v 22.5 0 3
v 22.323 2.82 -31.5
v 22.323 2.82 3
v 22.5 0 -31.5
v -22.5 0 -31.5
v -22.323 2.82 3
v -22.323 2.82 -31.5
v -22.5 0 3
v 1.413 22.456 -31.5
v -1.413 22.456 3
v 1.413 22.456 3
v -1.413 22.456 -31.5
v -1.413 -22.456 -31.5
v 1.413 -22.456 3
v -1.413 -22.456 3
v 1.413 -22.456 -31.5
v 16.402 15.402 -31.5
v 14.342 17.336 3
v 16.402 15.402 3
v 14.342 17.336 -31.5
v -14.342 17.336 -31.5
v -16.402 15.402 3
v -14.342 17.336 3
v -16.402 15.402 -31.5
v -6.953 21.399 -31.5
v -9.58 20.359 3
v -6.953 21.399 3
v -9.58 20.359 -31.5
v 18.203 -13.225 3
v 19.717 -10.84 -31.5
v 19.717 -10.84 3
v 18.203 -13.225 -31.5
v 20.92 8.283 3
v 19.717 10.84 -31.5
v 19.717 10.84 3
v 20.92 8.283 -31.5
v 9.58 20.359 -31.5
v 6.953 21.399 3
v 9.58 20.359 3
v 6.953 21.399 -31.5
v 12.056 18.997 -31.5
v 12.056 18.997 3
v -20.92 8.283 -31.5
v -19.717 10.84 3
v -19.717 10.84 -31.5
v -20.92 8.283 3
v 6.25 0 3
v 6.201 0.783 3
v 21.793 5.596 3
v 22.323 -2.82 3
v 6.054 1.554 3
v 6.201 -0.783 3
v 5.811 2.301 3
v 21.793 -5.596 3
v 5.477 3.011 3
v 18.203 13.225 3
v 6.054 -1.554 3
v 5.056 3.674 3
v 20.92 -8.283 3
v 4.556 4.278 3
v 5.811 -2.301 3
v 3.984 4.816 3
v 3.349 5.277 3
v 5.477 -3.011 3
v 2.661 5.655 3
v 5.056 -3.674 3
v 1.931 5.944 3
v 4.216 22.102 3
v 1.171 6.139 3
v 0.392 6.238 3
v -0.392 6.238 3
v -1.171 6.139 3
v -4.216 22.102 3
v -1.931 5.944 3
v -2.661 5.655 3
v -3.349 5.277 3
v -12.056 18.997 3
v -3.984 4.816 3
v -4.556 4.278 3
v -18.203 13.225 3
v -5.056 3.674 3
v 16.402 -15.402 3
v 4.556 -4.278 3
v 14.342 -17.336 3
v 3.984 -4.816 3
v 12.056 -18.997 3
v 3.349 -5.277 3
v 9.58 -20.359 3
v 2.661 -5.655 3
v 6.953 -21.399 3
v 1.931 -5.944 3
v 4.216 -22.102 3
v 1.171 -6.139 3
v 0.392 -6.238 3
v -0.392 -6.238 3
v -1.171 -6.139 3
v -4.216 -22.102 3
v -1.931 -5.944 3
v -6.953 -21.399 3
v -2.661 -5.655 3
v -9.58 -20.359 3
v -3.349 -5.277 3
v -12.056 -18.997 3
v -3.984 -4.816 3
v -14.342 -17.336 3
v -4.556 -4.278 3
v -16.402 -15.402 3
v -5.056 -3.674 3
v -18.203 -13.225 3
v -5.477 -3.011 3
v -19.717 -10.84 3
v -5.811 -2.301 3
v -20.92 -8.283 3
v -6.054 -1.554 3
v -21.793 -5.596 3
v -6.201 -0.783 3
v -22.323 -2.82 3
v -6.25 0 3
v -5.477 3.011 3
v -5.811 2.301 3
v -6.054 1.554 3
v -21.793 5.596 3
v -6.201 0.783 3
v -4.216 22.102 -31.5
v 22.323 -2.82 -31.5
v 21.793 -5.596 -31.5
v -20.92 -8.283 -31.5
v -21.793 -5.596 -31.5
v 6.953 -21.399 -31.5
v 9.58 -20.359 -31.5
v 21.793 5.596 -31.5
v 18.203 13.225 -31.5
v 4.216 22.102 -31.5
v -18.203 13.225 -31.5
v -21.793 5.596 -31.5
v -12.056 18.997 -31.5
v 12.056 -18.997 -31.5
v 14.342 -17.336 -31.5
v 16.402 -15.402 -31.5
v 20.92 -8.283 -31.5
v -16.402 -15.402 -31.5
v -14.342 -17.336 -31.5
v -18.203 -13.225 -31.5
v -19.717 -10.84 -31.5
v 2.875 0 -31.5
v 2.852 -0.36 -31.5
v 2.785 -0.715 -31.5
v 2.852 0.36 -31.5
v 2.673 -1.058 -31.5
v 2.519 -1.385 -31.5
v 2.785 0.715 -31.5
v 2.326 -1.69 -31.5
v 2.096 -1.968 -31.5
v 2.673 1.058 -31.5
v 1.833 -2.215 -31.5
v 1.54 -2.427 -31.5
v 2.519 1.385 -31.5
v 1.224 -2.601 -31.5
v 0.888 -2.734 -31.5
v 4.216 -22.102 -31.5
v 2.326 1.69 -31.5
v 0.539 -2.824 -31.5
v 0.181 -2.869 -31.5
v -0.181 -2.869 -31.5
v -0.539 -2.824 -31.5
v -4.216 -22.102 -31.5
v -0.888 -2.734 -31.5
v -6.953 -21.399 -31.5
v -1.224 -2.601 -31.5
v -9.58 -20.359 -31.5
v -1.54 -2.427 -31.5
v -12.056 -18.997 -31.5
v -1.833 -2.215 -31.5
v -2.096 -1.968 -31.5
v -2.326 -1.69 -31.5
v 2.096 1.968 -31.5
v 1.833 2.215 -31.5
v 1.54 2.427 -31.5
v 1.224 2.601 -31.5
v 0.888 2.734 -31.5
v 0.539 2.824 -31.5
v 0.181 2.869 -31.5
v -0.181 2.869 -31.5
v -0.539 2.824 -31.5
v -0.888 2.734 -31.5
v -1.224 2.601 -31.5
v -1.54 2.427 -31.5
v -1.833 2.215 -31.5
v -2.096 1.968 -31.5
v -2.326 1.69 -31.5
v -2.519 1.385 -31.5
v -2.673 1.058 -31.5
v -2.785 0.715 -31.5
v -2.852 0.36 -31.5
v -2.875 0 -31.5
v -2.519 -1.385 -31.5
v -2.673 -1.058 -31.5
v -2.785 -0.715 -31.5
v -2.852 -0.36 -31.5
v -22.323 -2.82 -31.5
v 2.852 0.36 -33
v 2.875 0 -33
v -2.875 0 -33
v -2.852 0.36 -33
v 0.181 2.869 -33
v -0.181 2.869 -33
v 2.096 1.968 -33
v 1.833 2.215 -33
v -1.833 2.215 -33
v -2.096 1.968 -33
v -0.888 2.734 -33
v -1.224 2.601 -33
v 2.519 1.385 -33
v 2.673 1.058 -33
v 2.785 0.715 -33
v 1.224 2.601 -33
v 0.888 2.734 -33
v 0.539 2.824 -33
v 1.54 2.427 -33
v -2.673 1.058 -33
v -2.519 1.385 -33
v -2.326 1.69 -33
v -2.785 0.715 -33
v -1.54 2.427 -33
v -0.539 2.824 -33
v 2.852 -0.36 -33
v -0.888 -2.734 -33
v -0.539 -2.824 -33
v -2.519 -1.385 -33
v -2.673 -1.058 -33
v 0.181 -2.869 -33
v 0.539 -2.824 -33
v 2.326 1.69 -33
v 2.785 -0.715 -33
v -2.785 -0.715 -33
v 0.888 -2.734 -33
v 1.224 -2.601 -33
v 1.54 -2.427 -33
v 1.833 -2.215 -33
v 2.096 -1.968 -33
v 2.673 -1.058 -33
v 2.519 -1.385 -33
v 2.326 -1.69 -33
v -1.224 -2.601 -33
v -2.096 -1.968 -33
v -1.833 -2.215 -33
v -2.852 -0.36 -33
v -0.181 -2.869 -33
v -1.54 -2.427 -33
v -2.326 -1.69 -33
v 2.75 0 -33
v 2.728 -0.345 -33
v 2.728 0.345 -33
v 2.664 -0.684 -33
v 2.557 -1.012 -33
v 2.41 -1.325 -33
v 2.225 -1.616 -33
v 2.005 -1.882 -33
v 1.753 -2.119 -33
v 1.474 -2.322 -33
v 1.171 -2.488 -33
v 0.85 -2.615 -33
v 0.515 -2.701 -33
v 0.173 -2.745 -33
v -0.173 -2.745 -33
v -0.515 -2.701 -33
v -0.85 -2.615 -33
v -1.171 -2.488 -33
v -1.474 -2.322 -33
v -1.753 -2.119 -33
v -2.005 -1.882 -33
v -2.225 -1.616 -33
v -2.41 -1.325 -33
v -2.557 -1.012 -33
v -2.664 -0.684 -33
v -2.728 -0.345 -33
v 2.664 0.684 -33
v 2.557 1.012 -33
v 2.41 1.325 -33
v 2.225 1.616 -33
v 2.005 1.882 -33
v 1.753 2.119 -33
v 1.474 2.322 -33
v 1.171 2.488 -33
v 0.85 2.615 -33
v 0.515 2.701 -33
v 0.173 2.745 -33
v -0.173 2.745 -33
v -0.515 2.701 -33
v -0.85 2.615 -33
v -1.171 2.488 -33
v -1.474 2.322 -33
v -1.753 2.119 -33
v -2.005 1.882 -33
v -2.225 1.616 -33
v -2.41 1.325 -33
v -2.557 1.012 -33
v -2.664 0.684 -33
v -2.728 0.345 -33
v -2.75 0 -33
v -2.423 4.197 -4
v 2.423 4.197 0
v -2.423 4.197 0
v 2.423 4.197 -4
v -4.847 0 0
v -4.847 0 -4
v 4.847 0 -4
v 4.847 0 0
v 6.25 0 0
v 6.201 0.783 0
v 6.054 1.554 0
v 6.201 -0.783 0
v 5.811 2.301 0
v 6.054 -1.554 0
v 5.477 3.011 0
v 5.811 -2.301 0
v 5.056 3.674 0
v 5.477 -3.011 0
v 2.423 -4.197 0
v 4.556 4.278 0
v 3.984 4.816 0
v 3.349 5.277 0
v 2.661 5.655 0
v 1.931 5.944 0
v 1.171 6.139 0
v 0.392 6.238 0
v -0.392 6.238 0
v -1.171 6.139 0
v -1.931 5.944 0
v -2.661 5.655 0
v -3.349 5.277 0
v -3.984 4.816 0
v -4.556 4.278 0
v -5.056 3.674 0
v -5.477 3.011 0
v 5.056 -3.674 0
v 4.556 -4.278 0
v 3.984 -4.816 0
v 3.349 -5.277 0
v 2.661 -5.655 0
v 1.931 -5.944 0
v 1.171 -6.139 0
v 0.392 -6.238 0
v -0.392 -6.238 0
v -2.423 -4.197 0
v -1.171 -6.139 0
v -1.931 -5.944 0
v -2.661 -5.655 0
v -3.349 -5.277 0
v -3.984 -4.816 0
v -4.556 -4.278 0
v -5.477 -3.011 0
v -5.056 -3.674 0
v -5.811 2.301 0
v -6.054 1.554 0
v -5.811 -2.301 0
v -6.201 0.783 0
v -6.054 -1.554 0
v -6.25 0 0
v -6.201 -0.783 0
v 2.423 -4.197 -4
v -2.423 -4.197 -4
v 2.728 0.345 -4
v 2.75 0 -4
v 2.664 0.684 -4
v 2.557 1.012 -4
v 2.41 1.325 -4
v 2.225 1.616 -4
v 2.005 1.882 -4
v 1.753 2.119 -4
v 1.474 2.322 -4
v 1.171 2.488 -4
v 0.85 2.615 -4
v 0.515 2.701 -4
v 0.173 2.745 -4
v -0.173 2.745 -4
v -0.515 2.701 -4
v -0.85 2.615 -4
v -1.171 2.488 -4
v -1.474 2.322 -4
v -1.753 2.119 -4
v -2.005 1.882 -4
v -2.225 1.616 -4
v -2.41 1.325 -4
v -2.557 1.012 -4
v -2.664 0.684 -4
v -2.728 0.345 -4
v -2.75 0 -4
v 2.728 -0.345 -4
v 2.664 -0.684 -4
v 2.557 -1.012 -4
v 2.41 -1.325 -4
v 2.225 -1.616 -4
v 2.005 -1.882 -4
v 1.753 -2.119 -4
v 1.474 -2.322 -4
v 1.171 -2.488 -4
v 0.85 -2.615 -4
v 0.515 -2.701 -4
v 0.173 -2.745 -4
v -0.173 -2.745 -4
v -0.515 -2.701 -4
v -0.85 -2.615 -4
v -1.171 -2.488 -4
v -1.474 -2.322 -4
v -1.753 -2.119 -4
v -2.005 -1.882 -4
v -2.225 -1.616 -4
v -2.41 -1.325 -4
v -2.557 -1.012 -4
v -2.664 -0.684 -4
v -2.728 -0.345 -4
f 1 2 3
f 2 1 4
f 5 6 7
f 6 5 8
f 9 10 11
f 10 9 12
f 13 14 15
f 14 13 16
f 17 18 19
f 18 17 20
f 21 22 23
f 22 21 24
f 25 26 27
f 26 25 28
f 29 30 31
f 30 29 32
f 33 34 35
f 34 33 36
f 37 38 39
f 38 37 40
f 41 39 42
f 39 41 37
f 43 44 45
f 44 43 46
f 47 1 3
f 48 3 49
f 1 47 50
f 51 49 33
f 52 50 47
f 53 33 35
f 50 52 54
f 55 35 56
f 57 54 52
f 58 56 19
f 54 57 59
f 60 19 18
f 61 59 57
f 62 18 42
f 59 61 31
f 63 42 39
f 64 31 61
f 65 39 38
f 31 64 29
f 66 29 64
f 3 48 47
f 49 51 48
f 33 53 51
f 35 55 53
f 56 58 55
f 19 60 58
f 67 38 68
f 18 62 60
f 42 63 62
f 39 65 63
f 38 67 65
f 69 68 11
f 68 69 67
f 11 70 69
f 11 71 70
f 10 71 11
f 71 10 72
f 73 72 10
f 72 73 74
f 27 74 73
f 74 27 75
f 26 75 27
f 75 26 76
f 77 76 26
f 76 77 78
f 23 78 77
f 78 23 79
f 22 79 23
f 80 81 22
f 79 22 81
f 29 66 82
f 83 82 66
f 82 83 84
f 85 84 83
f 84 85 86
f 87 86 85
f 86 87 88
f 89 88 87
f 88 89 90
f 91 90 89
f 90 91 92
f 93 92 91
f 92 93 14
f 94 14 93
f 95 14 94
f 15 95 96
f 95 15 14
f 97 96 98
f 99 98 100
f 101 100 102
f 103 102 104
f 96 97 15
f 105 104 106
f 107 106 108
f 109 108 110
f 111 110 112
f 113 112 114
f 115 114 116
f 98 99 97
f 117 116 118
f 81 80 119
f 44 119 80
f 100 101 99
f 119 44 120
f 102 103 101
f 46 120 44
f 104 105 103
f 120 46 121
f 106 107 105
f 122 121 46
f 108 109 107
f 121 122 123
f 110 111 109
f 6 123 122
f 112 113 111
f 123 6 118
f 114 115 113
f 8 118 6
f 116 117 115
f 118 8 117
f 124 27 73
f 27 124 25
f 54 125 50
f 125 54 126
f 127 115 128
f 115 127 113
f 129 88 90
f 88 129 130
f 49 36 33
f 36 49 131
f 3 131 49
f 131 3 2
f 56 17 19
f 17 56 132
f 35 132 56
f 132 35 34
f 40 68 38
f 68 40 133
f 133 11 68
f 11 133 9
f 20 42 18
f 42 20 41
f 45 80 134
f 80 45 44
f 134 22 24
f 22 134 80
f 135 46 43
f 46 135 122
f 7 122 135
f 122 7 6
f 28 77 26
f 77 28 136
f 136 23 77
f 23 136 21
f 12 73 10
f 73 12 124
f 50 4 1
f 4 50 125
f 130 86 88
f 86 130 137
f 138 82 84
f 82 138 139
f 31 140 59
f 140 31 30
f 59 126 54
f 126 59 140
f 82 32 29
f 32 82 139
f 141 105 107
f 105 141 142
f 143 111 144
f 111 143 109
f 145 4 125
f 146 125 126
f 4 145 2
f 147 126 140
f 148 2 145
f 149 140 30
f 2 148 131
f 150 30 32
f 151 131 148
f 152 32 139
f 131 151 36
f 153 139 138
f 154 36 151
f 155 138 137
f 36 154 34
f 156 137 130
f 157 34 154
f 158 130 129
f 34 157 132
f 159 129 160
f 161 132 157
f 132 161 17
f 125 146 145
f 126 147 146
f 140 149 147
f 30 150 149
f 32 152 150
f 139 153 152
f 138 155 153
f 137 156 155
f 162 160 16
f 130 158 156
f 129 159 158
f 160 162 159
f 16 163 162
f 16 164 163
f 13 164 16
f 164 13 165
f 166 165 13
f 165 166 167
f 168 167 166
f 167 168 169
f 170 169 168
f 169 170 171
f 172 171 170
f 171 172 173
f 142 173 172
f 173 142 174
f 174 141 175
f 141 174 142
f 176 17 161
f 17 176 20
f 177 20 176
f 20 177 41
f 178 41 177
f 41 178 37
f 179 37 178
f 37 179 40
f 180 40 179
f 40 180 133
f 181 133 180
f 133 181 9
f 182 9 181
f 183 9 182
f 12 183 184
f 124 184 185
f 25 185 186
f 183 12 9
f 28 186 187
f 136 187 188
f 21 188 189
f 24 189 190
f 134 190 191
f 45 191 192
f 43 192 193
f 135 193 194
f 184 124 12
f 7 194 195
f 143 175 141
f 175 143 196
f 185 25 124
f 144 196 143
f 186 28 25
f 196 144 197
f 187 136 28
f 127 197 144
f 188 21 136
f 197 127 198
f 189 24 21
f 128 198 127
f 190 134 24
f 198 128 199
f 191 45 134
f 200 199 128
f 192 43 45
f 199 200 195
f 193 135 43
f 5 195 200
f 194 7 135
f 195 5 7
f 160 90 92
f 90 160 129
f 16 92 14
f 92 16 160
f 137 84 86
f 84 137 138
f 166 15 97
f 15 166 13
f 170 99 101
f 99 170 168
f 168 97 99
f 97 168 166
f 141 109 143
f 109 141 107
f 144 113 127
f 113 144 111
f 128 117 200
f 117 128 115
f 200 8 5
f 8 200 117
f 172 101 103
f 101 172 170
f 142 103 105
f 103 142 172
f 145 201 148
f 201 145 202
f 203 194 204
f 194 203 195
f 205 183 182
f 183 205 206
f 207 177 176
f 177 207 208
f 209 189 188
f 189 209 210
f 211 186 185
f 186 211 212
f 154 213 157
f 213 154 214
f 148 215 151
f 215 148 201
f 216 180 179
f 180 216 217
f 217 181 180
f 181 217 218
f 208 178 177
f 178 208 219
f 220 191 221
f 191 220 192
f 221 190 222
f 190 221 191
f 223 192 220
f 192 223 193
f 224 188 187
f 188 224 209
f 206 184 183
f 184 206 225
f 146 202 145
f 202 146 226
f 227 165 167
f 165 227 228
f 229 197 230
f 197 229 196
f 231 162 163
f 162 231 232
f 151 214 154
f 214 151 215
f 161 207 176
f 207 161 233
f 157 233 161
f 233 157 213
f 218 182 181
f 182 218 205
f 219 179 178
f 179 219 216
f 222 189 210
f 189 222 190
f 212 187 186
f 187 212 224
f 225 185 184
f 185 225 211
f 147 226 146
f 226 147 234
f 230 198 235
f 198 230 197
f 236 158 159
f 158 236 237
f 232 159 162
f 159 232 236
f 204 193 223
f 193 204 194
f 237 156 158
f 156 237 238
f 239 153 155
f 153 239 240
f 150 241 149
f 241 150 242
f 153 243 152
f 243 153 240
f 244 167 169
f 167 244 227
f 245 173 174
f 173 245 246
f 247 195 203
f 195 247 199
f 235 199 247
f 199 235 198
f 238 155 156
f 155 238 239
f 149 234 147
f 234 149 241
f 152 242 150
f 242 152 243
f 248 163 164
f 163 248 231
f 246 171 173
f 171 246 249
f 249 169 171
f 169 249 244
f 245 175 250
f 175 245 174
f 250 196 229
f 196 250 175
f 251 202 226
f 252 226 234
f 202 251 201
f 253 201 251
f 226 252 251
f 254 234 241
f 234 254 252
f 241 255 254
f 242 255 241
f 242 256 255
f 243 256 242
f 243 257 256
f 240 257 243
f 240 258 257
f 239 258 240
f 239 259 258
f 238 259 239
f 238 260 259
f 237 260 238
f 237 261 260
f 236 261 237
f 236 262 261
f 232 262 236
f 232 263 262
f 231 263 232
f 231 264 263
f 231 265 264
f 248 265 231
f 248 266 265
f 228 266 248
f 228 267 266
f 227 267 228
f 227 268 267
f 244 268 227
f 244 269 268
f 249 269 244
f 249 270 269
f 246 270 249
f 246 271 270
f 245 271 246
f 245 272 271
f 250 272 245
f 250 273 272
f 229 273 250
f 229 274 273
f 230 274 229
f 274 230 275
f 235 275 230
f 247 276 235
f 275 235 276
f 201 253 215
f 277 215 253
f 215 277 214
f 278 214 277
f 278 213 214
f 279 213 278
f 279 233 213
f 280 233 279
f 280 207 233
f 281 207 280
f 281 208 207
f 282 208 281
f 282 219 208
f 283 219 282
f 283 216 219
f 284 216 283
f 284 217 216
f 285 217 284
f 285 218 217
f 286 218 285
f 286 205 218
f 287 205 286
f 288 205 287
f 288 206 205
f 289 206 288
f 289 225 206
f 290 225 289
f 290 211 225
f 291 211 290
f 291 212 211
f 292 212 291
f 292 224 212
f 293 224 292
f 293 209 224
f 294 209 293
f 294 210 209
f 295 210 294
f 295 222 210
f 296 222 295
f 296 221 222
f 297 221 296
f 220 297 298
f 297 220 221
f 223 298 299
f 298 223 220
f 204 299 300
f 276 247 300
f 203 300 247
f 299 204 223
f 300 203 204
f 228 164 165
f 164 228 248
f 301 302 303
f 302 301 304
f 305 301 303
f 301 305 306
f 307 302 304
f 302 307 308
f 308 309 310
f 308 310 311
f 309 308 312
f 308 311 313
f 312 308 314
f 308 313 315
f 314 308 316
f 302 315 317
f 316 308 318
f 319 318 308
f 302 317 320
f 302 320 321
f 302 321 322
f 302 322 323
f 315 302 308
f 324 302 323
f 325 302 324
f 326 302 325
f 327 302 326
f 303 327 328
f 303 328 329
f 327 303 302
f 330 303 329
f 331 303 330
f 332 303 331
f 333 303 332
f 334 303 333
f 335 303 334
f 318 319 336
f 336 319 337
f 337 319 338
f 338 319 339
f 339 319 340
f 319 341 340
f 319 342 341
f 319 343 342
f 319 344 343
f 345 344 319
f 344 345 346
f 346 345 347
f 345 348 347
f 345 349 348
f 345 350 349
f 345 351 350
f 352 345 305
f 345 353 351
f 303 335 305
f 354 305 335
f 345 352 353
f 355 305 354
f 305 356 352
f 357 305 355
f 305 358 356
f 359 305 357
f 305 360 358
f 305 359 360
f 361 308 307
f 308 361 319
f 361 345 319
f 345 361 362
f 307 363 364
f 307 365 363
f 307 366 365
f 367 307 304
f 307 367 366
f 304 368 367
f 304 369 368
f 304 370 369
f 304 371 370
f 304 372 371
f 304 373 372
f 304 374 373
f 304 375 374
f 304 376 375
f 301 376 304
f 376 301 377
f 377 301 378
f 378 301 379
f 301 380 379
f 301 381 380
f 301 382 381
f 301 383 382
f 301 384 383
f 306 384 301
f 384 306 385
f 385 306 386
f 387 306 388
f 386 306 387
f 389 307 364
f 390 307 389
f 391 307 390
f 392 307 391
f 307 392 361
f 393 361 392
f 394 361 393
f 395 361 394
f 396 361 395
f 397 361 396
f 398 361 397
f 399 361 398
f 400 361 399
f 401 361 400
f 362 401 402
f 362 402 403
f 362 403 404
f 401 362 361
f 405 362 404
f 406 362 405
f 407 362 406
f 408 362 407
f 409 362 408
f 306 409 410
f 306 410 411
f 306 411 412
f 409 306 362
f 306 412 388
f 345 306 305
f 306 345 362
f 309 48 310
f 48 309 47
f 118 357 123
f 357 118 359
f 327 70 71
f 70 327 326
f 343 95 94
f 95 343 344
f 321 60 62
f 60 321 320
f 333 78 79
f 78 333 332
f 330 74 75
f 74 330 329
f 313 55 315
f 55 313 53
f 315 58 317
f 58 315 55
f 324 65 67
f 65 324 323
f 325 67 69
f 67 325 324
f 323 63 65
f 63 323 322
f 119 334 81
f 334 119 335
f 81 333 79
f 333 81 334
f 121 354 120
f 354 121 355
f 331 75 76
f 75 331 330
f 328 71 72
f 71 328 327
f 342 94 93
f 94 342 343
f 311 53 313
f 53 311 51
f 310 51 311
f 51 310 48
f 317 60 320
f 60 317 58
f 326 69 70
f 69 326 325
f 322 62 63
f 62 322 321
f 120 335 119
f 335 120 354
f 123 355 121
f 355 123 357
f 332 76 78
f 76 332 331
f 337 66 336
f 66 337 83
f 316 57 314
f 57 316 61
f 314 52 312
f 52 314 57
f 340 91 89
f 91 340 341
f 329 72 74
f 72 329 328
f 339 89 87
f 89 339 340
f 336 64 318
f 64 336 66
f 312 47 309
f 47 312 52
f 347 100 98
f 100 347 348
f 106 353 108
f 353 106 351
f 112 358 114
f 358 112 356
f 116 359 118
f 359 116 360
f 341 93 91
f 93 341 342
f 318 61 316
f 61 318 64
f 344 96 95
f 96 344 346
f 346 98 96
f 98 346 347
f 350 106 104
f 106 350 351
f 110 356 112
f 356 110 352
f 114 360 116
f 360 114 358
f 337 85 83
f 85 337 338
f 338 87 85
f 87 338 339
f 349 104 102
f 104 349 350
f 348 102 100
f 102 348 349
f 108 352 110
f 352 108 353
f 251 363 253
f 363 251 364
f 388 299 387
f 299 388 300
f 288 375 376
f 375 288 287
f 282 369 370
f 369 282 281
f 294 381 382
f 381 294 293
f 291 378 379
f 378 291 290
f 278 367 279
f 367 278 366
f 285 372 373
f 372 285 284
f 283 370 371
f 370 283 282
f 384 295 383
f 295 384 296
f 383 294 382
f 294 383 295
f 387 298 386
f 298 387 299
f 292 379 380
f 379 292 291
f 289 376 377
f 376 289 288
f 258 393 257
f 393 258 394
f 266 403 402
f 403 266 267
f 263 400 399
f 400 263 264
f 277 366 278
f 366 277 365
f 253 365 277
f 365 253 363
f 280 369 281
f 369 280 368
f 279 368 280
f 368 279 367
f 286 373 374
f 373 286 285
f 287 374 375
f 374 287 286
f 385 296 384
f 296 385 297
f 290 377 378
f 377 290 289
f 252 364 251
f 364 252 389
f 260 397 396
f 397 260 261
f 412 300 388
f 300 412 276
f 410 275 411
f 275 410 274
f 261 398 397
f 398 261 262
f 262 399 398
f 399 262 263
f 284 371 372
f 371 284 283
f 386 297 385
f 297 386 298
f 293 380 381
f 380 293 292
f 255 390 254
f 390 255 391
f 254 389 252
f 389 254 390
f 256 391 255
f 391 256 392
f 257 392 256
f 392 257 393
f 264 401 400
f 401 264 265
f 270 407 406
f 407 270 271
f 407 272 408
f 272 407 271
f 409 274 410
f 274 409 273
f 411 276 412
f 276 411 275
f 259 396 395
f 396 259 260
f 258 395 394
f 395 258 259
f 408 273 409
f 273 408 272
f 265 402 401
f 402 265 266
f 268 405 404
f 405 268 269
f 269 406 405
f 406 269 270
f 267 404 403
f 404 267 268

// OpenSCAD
$fn = 50;

difference() {
	union() {
		translate(v = [0, 0, -31.5]) {
			cylinder(h = 34.5, r = 22.5);
		}
		#translate(v = [0, 0, -33.0]) {
			cylinder(h = 33, r = 2.875);
		}
	}
	union() {
		translate(v = [0, 0, 0]) {
			rotate(a = [0, 0, 0]) {
				difference() {
					union() {
						translate(v = [0, 0, -4]) {
							linear_extrude(height = 4) {
								polygon(points = [[4.8468, 0.0], [2.4234000000000004, 4.197451927062417], [-2.423399999999999, 4.197451927062417], [-4.8468, 5.935618106107392e-16], [-2.423400000000002, -4.197451927062416], [2.423399999999997, -4.197451927062419]]);
							}
						}
					}
					union();
				}
			}
		}
		#cylinder(h = 3, r = 6.25);
		#translate(v = [0, 0, -100.0]) {
			cylinder(h = 200, r = 2.75);
		}
	}
}
